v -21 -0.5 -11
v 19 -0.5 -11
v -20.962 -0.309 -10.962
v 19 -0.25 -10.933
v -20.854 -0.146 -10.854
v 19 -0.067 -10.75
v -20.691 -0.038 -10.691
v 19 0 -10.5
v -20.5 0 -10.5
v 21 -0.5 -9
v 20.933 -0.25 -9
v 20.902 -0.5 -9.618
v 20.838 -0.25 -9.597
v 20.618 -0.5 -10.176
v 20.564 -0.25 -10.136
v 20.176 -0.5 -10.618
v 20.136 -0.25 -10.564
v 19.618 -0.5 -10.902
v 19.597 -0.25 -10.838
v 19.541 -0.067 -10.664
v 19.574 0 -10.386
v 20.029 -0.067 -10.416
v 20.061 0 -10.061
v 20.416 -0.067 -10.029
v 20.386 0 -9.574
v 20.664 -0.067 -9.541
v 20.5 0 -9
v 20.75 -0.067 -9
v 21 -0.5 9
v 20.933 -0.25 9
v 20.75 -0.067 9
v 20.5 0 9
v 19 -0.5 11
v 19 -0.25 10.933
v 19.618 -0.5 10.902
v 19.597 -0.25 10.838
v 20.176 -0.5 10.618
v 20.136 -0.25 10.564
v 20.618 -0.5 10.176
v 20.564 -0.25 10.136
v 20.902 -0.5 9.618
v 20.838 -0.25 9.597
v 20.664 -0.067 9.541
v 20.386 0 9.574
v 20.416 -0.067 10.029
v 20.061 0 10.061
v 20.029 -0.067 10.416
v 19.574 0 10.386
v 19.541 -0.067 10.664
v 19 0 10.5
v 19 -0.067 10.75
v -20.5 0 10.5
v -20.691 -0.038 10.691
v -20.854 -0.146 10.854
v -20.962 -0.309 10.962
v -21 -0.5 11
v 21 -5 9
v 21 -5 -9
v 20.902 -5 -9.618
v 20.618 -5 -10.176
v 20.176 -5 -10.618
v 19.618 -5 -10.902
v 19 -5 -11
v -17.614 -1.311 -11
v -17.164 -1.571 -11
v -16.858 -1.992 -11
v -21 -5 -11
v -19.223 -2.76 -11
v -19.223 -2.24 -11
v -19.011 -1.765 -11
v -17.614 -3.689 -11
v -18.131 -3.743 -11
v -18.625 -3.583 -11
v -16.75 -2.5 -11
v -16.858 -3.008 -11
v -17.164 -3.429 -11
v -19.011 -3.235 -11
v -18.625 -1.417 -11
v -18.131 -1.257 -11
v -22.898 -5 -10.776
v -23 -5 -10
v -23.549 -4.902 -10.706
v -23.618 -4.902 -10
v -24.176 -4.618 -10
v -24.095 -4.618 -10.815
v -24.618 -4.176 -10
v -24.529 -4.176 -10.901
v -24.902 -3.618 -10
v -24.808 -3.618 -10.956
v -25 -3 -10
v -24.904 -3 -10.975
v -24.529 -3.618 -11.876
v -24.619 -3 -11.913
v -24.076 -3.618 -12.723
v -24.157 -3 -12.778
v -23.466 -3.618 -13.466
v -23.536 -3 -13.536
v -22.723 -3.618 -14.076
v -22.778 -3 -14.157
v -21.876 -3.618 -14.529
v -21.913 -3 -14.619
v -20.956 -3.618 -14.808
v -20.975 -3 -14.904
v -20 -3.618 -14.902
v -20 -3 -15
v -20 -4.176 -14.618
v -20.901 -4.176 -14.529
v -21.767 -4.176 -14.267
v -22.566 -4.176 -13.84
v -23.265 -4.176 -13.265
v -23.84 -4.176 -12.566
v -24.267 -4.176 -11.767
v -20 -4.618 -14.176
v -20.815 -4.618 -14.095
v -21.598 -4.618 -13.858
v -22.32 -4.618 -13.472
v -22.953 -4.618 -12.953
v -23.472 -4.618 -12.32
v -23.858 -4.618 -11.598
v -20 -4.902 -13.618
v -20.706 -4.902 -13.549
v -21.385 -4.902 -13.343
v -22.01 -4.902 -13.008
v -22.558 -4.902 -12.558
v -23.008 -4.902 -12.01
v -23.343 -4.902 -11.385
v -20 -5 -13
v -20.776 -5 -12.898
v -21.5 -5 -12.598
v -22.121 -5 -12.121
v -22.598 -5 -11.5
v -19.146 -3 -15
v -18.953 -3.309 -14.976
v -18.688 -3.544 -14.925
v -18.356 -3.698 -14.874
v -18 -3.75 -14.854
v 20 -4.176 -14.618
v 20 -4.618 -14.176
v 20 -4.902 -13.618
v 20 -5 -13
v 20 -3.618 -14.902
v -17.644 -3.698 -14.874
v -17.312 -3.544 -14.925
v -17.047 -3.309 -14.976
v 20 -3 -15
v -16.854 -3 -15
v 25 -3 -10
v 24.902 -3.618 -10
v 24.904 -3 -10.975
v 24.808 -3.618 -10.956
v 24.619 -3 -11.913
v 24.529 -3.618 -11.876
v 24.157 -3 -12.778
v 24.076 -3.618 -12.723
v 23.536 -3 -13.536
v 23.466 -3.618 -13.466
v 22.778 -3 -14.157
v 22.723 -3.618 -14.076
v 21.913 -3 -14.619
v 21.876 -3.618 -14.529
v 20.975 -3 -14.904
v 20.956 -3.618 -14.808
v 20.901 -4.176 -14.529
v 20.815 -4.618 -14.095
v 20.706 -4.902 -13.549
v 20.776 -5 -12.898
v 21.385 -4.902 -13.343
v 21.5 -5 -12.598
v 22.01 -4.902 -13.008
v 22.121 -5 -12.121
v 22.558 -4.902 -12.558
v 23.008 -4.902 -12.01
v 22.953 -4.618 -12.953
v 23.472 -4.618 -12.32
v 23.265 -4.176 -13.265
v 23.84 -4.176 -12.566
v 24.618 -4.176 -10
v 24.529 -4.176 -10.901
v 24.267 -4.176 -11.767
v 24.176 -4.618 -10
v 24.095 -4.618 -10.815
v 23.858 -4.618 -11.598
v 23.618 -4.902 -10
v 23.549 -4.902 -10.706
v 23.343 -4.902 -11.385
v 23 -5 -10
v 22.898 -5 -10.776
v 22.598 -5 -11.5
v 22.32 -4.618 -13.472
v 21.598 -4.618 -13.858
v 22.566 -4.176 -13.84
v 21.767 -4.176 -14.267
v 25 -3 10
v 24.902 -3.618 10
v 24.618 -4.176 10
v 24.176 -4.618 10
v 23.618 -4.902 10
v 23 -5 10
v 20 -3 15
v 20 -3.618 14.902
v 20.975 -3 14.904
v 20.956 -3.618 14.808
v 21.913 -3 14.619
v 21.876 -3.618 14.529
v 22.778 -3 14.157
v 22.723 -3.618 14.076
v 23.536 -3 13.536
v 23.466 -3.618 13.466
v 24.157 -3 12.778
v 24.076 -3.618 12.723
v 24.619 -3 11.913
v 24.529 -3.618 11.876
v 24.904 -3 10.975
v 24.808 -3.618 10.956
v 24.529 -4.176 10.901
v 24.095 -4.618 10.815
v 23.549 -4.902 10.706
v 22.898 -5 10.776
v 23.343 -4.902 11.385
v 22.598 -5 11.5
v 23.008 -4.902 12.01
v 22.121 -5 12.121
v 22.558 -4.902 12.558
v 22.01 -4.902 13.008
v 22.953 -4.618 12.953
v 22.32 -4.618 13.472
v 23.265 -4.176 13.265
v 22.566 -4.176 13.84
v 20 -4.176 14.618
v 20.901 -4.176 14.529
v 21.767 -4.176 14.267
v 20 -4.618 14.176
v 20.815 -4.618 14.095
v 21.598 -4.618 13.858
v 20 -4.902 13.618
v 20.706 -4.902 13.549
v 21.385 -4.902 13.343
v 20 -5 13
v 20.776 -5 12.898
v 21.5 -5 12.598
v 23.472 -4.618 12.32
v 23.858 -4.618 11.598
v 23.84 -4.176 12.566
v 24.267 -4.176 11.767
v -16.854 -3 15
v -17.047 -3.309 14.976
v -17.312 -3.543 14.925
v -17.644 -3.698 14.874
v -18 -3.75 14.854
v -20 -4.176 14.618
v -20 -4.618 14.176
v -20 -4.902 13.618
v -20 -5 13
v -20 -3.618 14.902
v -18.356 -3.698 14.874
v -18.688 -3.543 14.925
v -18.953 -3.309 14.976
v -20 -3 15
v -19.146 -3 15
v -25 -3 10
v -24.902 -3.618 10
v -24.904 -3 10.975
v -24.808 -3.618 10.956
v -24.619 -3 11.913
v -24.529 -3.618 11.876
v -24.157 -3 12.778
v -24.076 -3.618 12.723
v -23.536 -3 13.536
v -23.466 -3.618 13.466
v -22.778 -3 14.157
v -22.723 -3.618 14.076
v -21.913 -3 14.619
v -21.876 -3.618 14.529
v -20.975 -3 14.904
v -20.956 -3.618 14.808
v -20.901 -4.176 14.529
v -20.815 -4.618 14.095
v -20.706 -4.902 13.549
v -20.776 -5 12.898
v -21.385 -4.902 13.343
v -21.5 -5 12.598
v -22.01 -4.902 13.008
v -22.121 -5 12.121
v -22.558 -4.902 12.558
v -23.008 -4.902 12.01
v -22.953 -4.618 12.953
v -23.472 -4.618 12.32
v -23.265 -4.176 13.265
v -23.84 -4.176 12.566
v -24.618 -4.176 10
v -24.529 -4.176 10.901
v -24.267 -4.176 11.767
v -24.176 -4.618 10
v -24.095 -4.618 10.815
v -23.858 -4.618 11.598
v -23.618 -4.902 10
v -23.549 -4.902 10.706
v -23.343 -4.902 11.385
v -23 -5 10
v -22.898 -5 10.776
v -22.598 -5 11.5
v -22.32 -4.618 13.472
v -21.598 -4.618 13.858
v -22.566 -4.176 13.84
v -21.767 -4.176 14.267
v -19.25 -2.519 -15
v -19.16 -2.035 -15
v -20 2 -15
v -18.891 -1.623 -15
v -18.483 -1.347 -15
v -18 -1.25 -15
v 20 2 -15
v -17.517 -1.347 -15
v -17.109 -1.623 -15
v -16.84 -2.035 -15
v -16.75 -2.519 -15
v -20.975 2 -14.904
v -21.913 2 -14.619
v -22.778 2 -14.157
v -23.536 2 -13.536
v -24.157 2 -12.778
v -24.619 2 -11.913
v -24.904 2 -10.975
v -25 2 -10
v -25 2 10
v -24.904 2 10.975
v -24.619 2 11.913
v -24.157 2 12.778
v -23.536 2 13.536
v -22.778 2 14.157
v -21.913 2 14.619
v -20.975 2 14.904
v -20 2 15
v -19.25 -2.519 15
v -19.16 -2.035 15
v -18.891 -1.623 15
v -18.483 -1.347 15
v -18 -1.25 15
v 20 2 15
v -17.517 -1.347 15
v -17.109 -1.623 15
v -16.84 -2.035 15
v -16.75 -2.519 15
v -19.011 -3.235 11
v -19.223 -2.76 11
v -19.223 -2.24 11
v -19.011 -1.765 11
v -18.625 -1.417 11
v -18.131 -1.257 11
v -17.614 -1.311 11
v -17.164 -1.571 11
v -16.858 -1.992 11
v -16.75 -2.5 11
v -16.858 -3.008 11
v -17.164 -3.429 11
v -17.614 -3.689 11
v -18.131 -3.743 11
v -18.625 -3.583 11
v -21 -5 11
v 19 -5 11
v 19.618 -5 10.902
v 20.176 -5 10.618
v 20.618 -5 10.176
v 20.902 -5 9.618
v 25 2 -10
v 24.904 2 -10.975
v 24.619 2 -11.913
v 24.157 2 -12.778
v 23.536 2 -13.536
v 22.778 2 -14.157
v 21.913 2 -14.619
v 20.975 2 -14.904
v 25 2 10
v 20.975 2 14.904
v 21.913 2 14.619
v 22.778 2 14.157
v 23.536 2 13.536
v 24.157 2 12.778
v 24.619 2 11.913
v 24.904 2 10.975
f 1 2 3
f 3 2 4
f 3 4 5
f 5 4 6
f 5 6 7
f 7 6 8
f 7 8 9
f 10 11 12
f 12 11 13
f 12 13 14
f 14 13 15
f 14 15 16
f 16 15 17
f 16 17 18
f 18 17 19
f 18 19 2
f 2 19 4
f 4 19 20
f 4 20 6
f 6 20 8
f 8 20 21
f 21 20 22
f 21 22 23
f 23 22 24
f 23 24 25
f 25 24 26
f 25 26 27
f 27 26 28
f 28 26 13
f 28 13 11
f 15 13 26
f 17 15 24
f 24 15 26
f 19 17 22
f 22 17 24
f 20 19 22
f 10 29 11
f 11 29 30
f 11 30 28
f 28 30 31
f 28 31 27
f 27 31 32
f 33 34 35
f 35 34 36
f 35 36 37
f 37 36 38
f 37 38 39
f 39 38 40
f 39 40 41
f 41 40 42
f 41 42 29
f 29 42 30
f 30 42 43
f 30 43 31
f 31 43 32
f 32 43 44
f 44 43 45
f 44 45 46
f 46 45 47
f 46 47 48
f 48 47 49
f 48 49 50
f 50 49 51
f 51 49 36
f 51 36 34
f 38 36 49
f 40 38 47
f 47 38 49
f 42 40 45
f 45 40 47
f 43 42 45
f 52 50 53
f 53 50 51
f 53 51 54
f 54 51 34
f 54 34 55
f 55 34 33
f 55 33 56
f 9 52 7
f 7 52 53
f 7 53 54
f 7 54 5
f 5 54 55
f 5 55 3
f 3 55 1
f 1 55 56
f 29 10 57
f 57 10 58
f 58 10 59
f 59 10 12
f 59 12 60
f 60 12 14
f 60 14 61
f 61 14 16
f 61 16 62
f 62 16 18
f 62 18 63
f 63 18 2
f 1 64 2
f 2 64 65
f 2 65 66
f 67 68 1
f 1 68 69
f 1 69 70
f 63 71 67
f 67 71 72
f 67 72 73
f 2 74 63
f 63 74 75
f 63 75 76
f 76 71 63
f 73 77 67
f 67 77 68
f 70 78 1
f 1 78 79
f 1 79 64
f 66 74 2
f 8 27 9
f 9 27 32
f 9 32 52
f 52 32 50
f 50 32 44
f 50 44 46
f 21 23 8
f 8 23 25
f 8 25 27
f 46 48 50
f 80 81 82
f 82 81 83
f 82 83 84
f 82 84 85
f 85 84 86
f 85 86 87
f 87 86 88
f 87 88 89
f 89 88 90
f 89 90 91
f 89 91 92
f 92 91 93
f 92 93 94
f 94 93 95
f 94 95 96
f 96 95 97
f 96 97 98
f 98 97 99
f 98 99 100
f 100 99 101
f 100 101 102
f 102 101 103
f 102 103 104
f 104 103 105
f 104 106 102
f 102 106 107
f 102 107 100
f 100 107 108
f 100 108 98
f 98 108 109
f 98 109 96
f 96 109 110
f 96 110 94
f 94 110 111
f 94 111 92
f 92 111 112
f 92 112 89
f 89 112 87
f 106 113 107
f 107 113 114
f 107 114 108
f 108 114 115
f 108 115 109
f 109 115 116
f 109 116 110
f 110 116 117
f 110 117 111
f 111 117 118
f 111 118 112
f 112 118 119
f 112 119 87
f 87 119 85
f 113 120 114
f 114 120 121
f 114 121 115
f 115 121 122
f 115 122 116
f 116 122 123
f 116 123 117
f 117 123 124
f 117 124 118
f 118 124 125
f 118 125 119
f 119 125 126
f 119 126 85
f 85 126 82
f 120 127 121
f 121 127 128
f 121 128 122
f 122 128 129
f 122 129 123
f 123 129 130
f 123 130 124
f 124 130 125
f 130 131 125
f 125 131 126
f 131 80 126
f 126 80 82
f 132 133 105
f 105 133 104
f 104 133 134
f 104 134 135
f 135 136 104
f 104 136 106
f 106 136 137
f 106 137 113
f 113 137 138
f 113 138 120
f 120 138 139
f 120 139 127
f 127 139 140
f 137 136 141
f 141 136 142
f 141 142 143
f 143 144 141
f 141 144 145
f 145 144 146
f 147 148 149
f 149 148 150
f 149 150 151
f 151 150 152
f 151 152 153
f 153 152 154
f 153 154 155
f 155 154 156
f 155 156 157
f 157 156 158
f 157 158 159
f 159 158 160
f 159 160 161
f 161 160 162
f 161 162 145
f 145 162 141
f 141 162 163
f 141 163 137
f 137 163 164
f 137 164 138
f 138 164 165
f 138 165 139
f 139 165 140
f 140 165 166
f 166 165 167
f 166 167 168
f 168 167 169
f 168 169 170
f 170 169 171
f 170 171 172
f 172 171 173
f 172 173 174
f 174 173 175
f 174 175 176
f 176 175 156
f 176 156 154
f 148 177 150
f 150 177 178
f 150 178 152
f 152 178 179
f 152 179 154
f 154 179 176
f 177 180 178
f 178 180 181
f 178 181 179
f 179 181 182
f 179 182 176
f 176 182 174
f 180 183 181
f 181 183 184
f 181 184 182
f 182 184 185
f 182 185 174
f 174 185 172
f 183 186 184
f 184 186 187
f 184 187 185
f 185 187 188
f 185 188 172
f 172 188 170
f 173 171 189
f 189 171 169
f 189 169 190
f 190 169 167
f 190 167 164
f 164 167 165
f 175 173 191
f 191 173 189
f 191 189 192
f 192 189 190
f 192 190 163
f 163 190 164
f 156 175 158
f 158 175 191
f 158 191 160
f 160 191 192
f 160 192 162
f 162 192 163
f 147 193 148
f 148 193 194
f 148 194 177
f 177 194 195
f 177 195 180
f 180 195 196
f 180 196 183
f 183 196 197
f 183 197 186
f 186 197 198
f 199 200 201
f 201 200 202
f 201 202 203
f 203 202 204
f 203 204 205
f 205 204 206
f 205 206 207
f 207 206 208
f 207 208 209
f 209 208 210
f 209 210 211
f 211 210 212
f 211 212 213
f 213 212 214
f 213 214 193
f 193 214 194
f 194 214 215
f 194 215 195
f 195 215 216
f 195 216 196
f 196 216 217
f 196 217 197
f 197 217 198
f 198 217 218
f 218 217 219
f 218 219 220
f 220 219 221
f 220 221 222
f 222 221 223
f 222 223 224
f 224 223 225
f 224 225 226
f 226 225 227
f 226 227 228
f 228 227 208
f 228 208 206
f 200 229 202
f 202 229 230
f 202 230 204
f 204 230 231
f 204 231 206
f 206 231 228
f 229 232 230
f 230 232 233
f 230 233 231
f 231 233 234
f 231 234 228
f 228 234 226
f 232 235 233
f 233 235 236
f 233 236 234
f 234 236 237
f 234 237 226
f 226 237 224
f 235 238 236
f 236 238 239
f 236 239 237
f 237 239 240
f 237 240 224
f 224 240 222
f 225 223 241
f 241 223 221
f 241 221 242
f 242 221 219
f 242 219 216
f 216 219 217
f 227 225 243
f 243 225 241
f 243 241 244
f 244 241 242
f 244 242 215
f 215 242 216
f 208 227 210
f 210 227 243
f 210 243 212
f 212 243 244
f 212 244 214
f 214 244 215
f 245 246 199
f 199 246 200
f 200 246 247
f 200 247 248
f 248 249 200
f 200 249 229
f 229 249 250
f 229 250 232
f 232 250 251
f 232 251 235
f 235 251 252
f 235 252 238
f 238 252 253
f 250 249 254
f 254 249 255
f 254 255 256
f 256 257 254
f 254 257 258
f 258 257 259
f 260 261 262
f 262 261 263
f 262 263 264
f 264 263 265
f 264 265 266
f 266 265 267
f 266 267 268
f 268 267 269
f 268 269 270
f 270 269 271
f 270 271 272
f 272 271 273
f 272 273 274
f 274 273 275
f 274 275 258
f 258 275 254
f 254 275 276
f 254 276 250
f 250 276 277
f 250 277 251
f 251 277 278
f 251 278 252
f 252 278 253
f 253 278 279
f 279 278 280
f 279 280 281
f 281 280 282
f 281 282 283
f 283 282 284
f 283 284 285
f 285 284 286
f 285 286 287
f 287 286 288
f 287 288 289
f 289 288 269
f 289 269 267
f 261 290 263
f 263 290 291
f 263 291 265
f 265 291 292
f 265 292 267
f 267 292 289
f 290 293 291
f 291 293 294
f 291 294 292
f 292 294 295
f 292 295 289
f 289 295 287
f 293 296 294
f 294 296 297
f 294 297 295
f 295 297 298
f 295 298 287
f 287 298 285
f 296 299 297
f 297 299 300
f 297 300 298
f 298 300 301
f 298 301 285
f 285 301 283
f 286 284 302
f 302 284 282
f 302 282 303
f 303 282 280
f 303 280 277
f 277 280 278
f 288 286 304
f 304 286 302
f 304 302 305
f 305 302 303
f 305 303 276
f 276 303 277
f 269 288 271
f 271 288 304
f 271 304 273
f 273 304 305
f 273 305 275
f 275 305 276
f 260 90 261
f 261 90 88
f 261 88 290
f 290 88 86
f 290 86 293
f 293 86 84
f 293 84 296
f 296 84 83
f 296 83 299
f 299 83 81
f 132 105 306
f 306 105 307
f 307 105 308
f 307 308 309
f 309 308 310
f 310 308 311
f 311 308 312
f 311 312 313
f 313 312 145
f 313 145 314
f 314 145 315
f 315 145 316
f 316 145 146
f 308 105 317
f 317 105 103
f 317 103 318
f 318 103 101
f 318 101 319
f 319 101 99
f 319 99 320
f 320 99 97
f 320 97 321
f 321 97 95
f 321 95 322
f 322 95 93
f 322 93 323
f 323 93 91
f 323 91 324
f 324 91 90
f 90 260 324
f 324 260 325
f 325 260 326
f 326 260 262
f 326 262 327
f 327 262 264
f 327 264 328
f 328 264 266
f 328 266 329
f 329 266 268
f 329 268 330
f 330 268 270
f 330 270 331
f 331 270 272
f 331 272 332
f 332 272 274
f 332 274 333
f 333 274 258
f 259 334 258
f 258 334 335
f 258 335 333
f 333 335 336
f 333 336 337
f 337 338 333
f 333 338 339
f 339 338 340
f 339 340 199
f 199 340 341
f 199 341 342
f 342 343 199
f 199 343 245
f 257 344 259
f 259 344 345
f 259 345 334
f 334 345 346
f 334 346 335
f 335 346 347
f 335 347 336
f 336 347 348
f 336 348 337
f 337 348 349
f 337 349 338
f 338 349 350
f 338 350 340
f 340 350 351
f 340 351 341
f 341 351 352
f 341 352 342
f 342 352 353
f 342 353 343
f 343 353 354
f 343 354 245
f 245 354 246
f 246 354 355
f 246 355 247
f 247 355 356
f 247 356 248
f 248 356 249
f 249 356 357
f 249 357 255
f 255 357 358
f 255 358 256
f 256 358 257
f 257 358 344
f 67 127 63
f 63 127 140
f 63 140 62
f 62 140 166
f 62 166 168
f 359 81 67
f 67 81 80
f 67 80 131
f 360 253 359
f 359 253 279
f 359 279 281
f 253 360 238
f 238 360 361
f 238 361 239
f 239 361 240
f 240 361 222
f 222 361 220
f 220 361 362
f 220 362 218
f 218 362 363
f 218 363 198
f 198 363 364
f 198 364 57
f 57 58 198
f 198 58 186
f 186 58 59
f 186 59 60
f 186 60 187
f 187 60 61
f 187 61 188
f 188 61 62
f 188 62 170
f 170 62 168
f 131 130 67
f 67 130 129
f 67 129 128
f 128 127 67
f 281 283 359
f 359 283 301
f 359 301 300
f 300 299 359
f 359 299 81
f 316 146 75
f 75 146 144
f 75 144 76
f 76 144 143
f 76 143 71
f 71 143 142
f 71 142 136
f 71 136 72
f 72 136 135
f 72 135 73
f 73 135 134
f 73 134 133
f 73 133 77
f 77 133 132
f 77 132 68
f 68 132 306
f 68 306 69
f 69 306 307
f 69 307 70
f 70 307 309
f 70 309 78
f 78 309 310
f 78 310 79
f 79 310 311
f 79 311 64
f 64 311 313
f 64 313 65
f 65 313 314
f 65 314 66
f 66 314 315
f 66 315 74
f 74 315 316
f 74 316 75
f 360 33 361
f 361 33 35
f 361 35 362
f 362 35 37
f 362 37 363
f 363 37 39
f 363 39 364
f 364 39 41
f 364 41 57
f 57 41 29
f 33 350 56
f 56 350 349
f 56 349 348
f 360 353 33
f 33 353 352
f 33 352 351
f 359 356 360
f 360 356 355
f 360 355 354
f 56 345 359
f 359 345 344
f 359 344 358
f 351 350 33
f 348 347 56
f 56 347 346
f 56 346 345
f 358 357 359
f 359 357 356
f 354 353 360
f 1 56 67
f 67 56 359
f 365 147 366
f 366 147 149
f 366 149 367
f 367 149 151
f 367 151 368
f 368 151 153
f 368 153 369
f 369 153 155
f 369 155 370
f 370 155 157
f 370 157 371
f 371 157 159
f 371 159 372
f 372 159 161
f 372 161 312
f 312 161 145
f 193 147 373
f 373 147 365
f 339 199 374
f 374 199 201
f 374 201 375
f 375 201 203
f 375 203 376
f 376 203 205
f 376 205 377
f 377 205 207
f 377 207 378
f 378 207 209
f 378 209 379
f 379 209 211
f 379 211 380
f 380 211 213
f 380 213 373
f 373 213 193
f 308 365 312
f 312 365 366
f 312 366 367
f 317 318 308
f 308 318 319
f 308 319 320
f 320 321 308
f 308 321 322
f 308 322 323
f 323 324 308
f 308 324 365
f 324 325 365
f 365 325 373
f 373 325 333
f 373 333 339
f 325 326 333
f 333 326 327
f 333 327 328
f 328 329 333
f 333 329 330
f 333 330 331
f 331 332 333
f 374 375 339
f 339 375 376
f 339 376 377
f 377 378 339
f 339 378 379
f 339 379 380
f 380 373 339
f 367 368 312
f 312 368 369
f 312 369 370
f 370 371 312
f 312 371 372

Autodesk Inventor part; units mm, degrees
ref_plane "YZ Plane" through (0, 0, 0) normal (1, 0, 0) x (0, 1, 0)
ref_plane "XZ Plane" through (0, 0, 0) normal (0, 1, 0) x (-1, 0, 0)
ref_plane "XY Plane" through (0, 0, 0) normal (0, 0, 1) x (1, 0, 0)
sketch "Boceto1" plane through (0, 0, 0) normal (0, 1, 0) x (-1, 0, 0)
  line L0 (-20, 15) -> (20, 15)
  line L1 (25, 10) -> (25, -10)
  line L2 (20, -15) -> (-20, -15)
  line L3 (-25, -10) -> (-25, 10)
  line L4 (-25, 15) -> (25, -15) construction
  line L5 (25, 15) -> (-25, -15) construction
  line L6 (21, -11) -> (21, 11)
  line L7 (21, 11) -> (-19, 11)
  line L8 (-21, 9) -> (-21, -9)
  line L9 (-19, -11) -> (21, -11)
  arc A0 (25, 10) -> (20, 15) centre (20, 10) ccw
  arc A1 (20, -15) -> (25, -10) centre (20, -10) ccw
  arc A2 (-25, -10) -> (-20, -15) centre (-20, -10) ccw
  arc A3 (-20, 15) -> (-25, 10) centre (-20, 10) ccw
  arc A4 (-19, 11) -> (-21, 9) centre (-19, 9) ccw
  arc A5 (-21, -9) -> (-19, -11) centre (-19, -9) ccw
  point P0 (0, 0)
  dimension "d0" = 50
  dimension "d1" = 30
  dimension "d2" = 4
  dimension "d3" = 5
  dimension "d4" = 2
extrude "Extrusión1" add sketch "Boceto1" along normal blind 2 contours L0 A0 L1 A1 L2 A2 L3 A3 | L9 A5 L8 A4 L7 L6
extrude "Extrusión2" add sketch "Boceto1" against normal blind 5
sketch "Boceto3" plane through (20, 2, -15) normal (0, 0, -1) x (-1, 0, 0)
  line L0 (1, -2) -> (41, -2) projected
  line L1 (1, -2) -> (1, -7) projected
  line L2 (41, -7) -> (1, -7) projected
  line L3 (41, -2) -> (41, -7) projected
  line L4 (41, -4.5) -> (38, -4.5)
  circle A0 centre (38, -4.5) radius 2.5
  circle A1 centre (38, -4.5) radius 1.25
  point P0 (20, -2)
  dimension "d9" = 3
  dimension "d10" = 2.5
extrude "Extrusión3" cut sketch "Boceto3" against normal through all contours A1
fillet "Empalme1" radius 2 8 edges at (-23.5355, -5, -13.5355) (0, -5, -15) (23.5355, -5, -13.5355) (25, -5, 0) (23.5355, -5, 13.5355) (0, -5, 15) (-23.5355, -5, 13.5355) (-25, -5, 0)
fillet "Empalme2" radius 0.5 6 edges at (20.4142, 0, 10.4142) (21, 0, 0) (20.4142, 0, -10.4142) (-1, 0, -11) (-1, 0, 11) (-21, 0, 0)
properties part number "Base2"
